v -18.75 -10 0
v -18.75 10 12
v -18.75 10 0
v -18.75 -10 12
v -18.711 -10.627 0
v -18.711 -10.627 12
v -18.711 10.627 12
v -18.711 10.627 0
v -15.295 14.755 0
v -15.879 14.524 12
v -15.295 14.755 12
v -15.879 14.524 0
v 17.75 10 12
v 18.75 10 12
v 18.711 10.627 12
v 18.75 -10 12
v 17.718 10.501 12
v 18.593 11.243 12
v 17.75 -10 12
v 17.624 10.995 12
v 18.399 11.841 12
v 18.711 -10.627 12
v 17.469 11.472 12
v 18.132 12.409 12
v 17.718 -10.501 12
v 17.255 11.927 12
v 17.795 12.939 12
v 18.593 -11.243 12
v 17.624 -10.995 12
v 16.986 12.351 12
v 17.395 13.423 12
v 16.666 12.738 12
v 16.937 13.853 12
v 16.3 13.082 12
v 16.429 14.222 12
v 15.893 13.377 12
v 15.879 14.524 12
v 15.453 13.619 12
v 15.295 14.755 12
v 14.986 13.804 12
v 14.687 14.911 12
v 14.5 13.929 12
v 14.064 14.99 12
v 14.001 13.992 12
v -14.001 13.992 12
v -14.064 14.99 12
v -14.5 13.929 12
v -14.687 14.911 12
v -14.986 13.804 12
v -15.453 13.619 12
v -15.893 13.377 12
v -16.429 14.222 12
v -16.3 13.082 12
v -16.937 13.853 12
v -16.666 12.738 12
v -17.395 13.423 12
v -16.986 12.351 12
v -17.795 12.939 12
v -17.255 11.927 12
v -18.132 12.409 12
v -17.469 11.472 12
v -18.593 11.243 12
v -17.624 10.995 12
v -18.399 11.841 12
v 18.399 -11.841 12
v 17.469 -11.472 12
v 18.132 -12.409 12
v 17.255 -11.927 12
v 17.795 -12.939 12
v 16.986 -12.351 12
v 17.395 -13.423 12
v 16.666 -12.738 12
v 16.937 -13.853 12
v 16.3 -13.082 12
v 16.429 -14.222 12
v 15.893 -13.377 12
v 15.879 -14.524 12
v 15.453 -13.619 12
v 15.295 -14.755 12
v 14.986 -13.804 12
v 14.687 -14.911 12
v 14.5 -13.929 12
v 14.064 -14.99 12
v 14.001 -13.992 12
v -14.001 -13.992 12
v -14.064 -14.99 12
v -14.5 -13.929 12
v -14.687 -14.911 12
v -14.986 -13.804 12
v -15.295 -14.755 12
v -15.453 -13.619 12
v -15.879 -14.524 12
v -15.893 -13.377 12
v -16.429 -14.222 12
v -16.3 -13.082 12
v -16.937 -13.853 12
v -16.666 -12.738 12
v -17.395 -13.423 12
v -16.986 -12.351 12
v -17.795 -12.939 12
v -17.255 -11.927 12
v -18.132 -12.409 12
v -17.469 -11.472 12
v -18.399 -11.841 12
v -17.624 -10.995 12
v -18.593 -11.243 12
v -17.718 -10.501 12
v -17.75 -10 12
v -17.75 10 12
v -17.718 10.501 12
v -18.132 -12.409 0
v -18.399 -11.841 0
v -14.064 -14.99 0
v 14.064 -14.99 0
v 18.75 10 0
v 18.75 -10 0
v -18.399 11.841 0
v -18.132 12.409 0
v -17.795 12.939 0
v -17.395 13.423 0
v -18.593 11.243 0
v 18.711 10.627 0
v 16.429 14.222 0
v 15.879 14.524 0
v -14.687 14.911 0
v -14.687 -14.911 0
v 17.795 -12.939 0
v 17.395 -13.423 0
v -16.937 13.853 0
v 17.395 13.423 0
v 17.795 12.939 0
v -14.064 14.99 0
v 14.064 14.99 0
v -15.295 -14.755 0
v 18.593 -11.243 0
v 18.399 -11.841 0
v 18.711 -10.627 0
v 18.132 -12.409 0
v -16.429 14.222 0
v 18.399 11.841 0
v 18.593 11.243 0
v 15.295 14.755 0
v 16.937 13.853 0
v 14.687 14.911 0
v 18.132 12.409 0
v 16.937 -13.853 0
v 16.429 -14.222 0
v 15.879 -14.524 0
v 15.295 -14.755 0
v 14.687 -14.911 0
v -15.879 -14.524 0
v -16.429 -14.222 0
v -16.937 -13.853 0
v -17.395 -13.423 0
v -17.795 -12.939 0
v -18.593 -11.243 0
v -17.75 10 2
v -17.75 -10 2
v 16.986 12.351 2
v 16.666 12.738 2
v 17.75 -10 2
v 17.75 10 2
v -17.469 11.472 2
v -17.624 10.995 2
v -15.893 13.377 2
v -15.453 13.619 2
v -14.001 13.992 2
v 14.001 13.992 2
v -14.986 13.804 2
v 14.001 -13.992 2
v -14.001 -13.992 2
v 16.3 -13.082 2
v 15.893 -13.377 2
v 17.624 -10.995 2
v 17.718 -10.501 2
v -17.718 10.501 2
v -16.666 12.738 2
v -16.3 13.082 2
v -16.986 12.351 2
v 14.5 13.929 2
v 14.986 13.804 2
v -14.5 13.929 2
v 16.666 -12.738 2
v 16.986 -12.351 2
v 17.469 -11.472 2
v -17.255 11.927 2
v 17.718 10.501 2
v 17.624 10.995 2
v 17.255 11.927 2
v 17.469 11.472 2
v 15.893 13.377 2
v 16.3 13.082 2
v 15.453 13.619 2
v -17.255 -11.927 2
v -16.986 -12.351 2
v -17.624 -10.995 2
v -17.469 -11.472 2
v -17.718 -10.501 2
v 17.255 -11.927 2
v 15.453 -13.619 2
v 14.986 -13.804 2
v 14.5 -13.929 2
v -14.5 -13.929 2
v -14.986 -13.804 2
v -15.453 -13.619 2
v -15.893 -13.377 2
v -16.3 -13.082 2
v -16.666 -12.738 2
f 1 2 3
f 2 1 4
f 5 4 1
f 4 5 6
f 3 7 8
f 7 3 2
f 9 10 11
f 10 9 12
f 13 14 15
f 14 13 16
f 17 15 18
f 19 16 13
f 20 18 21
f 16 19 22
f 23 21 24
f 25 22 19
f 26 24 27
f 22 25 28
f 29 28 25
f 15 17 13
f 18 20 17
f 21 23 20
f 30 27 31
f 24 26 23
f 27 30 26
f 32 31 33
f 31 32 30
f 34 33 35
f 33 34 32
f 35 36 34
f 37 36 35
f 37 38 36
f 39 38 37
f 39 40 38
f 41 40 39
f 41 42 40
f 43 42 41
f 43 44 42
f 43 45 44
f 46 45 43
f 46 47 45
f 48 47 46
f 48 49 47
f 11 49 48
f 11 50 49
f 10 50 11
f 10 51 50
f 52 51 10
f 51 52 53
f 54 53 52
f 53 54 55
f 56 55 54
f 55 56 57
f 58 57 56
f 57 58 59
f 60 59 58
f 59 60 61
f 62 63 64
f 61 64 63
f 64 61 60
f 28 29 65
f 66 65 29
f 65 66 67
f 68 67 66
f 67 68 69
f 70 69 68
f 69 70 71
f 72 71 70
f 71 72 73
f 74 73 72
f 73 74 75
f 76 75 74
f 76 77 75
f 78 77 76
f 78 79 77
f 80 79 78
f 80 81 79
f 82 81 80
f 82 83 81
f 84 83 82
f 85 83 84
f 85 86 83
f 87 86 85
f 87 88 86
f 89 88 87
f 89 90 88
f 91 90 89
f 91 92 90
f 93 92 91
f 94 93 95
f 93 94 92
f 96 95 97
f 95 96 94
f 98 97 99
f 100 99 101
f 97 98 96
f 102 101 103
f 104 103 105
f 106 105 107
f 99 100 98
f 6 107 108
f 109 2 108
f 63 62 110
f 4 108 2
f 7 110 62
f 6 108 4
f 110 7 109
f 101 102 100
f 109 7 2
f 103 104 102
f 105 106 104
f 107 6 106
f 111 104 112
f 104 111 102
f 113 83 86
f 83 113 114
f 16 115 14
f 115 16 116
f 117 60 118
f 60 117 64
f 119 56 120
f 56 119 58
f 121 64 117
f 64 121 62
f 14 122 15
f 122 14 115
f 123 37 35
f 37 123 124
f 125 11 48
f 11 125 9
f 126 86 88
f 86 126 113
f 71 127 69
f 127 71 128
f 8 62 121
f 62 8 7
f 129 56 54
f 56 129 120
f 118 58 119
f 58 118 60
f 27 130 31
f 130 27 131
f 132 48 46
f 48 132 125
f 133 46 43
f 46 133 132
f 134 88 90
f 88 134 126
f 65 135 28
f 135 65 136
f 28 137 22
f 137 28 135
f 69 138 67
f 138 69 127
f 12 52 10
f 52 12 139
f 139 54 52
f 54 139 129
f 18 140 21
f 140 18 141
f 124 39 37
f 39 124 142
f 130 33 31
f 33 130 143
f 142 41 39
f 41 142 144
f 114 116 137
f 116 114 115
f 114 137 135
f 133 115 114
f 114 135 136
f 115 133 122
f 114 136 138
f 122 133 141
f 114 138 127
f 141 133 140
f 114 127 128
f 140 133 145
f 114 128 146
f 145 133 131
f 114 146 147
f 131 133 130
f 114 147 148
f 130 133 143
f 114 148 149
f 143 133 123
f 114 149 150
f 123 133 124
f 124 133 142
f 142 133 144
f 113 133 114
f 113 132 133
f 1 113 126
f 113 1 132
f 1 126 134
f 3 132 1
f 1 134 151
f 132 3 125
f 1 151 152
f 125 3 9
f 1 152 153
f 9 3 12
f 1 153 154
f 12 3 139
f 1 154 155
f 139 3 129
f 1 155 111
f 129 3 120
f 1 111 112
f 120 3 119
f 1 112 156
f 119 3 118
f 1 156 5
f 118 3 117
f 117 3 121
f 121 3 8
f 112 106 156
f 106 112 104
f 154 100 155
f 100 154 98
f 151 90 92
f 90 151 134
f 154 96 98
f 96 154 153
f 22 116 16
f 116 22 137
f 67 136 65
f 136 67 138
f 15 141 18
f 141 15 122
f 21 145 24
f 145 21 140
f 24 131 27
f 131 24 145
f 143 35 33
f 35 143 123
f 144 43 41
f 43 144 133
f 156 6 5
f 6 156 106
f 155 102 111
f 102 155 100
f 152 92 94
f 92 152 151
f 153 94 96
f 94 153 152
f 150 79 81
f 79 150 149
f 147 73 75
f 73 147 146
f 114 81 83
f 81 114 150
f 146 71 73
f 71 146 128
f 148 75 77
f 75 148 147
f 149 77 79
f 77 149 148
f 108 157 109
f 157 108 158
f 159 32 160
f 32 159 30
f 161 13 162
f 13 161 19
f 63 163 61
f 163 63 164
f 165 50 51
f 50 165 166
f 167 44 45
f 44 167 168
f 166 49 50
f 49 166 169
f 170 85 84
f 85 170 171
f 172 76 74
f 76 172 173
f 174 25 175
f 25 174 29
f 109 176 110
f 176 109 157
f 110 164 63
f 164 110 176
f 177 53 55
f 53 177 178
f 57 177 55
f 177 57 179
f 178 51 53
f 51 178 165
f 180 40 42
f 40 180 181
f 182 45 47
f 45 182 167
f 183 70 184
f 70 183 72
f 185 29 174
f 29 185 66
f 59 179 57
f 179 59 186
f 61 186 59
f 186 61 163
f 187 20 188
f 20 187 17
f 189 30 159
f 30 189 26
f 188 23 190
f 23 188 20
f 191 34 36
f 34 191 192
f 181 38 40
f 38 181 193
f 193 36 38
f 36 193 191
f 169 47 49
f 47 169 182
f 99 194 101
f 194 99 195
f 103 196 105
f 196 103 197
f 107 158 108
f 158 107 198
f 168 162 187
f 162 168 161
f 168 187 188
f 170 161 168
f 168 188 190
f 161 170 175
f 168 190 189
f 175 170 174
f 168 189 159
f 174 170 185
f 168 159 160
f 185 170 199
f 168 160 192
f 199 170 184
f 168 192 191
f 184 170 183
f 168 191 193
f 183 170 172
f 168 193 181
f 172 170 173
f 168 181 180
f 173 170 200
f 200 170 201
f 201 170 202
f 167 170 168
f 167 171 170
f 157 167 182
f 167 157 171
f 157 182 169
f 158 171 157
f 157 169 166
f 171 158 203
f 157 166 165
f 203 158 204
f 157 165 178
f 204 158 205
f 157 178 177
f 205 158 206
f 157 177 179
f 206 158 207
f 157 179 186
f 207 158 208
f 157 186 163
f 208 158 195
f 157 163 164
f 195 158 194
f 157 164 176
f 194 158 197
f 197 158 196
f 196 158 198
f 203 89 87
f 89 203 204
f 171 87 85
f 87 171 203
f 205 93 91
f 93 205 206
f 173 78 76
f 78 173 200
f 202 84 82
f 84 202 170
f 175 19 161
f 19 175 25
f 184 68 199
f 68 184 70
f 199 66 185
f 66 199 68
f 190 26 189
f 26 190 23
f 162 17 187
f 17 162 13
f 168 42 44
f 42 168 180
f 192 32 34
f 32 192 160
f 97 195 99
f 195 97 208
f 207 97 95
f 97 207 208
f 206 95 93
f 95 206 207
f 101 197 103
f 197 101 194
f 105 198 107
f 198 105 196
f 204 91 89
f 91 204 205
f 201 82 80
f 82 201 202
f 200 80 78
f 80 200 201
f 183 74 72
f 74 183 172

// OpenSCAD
$fn = 50;


difference() {
	union() {
		hull() {
			translate(v = [-13.7500000000, 10.0000000000, 0]) {
				cylinder(h = 12, r = 5);
			}
			translate(v = [13.7500000000, 10.0000000000, 0]) {
				cylinder(h = 12, r = 5);
			}
			translate(v = [-13.7500000000, -10.0000000000, 0]) {
				cylinder(h = 12, r = 5);
			}
			translate(v = [13.7500000000, -10.0000000000, 0]) {
				cylinder(h = 12, r = 5);
			}
		}
	}
	union() {
		translate(v = [0, 0, 2]) {
			#hull() {
				translate(v = [-13.7500000000, 10.0000000000, 0]) {
					cylinder(h = 10, r = 4);
				}
				translate(v = [13.7500000000, 10.0000000000, 0]) {
					cylinder(h = 10, r = 4);
				}
				translate(v = [-13.7500000000, -10.0000000000, 0]) {
					cylinder(h = 10, r = 4);
				}
				translate(v = [13.7500000000, -10.0000000000, 0]) {
					cylinder(h = 10, r = 4);
				}
			}
		}
	}
}
